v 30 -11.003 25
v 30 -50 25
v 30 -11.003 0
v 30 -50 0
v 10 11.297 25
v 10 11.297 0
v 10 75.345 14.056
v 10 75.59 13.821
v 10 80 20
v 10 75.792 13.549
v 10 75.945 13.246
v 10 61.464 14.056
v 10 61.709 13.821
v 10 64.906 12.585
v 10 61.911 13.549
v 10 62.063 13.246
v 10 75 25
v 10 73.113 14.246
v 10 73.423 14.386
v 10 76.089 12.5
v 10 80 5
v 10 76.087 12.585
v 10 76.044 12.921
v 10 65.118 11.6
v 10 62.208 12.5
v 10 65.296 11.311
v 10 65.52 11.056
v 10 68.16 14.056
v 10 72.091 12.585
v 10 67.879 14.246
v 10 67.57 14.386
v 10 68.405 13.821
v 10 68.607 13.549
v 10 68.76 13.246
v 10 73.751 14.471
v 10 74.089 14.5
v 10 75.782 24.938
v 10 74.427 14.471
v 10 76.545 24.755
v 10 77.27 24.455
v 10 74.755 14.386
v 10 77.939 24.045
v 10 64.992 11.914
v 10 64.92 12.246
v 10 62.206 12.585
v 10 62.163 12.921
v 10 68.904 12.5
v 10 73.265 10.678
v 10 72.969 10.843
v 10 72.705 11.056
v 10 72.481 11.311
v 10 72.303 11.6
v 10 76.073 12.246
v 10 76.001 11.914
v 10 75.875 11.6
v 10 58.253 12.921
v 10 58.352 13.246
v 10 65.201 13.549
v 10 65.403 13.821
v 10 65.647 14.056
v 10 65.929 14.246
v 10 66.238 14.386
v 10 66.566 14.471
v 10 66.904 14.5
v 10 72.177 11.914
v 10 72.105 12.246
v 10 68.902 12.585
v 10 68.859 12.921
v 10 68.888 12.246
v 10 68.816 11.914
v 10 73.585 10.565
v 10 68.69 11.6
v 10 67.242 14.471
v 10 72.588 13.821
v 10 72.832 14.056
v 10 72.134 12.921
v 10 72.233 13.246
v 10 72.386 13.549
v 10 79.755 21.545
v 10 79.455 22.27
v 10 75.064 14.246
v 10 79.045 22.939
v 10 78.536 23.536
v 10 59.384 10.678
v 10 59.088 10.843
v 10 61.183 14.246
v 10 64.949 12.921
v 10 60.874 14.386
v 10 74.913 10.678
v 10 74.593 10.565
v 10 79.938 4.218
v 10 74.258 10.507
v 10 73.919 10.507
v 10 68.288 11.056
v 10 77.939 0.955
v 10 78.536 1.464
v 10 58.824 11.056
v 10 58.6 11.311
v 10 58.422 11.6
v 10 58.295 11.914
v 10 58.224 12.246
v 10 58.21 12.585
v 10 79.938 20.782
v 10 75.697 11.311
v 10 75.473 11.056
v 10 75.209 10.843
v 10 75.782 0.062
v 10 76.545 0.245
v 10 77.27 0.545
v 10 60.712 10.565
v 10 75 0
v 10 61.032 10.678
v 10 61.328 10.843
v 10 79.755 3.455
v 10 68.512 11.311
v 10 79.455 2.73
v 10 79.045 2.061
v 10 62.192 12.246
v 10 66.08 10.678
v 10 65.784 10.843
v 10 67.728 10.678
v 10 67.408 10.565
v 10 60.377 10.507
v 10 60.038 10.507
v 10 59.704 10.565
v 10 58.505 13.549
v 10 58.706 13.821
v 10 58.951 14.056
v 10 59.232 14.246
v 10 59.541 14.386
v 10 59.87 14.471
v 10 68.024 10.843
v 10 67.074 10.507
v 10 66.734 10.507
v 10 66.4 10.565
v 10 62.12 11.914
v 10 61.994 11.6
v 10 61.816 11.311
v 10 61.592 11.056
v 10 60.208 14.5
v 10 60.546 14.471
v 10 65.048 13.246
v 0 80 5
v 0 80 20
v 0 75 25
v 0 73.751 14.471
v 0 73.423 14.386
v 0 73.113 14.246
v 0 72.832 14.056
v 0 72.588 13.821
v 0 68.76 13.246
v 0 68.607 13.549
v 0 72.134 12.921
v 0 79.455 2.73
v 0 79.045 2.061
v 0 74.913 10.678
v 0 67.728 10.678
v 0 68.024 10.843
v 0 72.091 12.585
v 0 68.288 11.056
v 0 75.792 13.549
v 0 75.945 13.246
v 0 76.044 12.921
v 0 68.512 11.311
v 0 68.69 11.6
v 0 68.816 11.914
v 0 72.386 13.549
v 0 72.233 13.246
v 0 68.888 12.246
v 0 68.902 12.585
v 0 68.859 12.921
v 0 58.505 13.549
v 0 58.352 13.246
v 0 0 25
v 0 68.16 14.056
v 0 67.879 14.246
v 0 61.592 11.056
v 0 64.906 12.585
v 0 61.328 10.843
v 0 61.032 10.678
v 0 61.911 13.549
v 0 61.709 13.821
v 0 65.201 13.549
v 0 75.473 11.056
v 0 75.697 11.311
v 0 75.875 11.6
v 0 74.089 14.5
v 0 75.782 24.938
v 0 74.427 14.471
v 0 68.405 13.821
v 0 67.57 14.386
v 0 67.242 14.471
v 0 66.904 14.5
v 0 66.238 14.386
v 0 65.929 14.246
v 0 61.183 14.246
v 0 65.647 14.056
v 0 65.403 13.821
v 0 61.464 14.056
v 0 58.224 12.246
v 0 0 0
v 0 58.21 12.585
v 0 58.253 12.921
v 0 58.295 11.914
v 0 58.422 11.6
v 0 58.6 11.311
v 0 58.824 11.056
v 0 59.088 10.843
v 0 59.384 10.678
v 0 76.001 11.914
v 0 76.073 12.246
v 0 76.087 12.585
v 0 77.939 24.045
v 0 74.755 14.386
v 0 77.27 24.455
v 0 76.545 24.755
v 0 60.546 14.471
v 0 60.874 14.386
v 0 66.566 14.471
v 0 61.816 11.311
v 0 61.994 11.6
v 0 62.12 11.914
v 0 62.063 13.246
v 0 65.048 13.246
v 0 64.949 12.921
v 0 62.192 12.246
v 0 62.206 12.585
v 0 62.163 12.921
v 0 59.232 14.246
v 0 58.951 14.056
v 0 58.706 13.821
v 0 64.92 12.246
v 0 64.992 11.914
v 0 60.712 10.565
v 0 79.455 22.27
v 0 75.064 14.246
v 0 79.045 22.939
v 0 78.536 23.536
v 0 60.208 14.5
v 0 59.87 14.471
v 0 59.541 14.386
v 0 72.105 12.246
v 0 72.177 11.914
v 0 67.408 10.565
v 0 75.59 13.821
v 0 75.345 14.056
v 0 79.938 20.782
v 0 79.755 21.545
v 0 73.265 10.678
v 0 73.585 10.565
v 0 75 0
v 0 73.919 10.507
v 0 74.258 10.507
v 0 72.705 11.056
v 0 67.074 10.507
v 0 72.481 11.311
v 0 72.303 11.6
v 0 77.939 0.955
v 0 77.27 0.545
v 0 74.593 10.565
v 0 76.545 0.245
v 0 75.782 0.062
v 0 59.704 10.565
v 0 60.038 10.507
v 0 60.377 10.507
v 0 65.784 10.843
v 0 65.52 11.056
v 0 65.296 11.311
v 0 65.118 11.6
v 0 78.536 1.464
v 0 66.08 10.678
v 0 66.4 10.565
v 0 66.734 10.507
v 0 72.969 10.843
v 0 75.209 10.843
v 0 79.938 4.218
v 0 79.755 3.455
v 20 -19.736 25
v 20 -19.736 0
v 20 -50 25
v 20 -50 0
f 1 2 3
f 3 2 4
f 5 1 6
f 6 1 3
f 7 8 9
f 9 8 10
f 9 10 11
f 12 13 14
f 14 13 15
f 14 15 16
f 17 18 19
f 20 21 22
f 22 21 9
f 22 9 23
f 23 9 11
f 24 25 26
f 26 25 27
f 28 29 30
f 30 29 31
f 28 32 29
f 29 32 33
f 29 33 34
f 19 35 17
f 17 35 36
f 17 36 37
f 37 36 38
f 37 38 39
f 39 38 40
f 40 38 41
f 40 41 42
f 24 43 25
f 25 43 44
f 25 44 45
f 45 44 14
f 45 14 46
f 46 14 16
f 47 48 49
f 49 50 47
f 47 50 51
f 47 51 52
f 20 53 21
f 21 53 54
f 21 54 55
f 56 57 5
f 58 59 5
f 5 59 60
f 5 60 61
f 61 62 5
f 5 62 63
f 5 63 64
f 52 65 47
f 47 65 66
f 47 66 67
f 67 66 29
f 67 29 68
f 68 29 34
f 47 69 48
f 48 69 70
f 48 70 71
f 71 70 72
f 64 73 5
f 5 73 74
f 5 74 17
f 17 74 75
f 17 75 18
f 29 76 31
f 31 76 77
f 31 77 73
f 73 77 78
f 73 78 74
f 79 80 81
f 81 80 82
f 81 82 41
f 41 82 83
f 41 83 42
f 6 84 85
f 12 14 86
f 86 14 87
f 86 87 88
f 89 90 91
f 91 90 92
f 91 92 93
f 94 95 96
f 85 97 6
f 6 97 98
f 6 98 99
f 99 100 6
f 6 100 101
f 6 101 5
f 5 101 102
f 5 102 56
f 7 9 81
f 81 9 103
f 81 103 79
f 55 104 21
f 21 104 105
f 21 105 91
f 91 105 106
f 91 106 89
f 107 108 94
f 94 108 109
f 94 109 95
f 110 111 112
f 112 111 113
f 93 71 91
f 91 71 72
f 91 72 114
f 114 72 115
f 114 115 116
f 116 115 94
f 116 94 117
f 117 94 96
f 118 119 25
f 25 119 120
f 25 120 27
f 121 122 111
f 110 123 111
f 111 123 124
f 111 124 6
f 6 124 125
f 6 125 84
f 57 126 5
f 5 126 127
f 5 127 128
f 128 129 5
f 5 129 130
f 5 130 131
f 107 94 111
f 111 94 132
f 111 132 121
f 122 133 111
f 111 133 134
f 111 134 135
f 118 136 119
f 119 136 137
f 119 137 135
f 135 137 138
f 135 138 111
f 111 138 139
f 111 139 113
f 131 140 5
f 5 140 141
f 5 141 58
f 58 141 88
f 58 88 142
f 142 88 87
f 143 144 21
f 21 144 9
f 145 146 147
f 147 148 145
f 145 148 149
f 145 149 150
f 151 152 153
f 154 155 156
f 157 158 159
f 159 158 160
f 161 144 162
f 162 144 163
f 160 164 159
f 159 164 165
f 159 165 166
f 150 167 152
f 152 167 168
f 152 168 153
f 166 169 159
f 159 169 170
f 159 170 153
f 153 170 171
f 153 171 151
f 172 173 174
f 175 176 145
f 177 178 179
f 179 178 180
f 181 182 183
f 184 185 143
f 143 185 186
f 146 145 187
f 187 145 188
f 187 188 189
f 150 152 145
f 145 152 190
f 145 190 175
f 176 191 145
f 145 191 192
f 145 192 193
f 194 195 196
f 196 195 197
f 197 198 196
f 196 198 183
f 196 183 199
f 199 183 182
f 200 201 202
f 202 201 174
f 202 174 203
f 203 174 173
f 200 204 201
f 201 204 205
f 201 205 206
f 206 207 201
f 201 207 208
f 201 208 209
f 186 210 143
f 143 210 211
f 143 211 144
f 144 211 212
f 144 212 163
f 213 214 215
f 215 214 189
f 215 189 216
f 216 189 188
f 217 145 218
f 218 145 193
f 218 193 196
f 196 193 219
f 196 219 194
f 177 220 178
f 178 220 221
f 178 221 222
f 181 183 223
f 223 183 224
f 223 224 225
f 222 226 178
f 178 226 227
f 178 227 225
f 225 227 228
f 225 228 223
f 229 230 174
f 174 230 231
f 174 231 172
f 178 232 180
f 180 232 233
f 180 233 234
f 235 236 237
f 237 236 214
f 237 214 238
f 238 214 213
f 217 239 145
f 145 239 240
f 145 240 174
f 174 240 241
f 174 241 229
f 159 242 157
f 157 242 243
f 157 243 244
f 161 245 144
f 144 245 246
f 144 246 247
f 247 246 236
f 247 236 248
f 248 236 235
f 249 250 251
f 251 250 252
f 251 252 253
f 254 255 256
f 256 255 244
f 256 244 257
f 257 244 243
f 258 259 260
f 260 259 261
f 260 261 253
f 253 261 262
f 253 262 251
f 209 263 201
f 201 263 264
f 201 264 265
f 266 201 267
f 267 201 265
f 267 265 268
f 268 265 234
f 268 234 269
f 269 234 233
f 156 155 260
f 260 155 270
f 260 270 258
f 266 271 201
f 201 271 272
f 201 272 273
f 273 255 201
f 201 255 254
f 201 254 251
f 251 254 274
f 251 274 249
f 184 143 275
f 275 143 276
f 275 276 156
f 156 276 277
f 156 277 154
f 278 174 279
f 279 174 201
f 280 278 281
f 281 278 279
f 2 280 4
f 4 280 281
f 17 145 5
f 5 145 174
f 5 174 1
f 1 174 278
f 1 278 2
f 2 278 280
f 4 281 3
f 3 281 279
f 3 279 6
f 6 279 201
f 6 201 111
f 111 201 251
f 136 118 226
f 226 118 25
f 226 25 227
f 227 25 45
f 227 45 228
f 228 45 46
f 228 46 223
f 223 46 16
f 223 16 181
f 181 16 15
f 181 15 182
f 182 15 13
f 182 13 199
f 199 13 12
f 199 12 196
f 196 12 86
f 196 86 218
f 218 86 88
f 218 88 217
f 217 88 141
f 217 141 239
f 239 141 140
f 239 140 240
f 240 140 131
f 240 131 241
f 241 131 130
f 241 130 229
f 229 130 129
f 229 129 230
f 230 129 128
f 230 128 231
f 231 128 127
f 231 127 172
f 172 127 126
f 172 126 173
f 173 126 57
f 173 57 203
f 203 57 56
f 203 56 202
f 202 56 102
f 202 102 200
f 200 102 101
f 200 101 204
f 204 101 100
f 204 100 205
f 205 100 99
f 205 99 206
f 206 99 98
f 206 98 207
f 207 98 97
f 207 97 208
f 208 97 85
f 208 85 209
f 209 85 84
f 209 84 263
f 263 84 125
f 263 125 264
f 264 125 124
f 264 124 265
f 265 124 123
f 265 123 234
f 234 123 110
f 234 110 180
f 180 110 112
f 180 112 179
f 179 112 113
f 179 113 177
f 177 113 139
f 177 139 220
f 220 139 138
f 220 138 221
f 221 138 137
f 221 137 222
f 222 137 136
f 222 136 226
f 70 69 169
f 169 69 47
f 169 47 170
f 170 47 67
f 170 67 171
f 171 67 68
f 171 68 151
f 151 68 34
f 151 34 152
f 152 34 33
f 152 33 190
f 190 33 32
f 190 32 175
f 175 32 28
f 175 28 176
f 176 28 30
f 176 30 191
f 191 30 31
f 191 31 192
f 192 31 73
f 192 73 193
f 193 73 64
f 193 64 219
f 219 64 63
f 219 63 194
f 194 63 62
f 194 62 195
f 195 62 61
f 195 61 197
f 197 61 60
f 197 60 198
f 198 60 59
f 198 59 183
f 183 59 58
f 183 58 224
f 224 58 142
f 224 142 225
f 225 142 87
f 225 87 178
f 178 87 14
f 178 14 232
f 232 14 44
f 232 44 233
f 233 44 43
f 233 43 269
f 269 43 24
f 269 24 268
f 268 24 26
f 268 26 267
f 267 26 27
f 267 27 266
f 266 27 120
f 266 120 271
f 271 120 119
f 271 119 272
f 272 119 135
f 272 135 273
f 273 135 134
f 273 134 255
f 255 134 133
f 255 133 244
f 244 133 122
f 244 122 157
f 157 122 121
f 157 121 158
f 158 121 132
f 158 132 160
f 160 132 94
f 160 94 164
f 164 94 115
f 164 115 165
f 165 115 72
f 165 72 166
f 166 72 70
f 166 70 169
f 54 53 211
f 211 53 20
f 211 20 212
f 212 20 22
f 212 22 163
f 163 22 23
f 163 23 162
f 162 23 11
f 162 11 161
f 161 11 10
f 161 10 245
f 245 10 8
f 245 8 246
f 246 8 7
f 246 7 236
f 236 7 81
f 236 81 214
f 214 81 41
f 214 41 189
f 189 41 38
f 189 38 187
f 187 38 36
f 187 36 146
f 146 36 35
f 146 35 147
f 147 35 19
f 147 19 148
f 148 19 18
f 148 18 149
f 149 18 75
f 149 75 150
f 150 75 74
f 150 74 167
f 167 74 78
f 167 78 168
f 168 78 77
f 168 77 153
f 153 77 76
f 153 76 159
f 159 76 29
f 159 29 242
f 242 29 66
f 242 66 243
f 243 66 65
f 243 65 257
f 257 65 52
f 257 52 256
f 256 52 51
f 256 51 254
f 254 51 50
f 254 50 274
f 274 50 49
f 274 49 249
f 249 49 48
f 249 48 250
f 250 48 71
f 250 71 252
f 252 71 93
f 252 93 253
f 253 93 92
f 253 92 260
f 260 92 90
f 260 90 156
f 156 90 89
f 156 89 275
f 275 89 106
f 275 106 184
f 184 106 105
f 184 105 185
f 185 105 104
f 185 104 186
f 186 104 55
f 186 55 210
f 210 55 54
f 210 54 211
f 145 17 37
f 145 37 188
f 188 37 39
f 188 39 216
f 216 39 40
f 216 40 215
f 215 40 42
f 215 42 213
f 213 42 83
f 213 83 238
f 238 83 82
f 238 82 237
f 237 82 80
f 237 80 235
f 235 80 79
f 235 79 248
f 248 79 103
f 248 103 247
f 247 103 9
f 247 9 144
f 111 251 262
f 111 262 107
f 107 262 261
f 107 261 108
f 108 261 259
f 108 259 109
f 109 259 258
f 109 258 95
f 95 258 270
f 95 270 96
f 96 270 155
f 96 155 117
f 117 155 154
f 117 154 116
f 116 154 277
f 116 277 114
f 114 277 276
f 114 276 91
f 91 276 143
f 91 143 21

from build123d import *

# Parameters (mm, degrees)
Y_KSEKLIK_EKSTR_ZYON1_DEPTH = 25
KES_EKSTR_ZYON1_DEPTH       = 25
RADYUS1_R                   = 5
RADYUS2_R                   = 5


with BuildPart() as part:
    # Çizim1 → Yükseklik-Ekstrüzyon1 (new body)
    with BuildSketch(Plane.XY):
        Polygon((30, -11.002799306), (30, -50), (20, -50), (20, -19.736164581), (0, 0), (0, 80), (10, 80), (10, 11.297306062), align=None)
    extrude(amount=Y_KSEKLIK_EKSTR_ZYON1_DEPTH)

    # Çizim2 → Kes-Ekstrüzyon1 (cut)
    with BuildSketch(Plane.ZY):
        with BuildLine():
            ThreePointArc((14.5, 74.088859677), (13.914213562, 75.50307324), (12.5, 76.088859677))
            Line((12.5, 76.088859677), (12.5, 72.088859677))
            ThreePointArc((12.5, 72.088859677), (13.914213562, 72.674646115), (14.5, 74.088859677))
        make_face()
        with BuildLine():
            Line((12.5, 72.088859677), (12.5, 76.088859677))
            ThreePointArc((12.5, 76.088859677), (10.5, 74.088859677), (12.5, 72.088859677))
        make_face()
        with BuildLine():
            ThreePointArc((14.5, 66.903895924), (13.914213562, 68.318109486), (12.5, 68.903895924))
            Line((12.5, 68.903895924), (12.5, 64.903895924))
            ThreePointArc((12.5, 64.903895924), (13.914213562, 65.489682361), (14.5, 66.903895924))
        make_face()
        with BuildLine():
            Line((12.5, 64.903895924), (12.5, 68.903895924))
            ThreePointArc((12.5, 68.903895924), (10.5, 66.903895924), (12.5, 64.903895924))
        make_face()
        with BuildLine():
            ThreePointArc((12.5, 62.207705215), (10.5, 60.207705215), (12.5, 58.207705215))
            Line((12.5, 58.207705215), (12.5, 62.207705215))
        make_face()
        with BuildLine():
            Line((12.5, 62.207705215), (12.5, 58.207705215))
            ThreePointArc((12.5, 58.207705215), (13.914213562, 58.793491652), (14.5, 60.207705215))
            ThreePointArc((14.5, 60.207705215), (13.914213562, 61.621918777), (12.5, 62.207705215))
        make_face()
    extrude(amount=-KES_EKSTR_ZYON1_DEPTH, mode=Mode.SUBTRACT)

    # Radyus1
    radyus1_edges = [part.edges().sort_by_distance(p)[0] for p in [
        (5, 80, 25),
    ]]
    fillet(radyus1_edges, radius=RADYUS1_R)

    # Radyus2
    radyus2_edges = [part.edges().sort_by_distance(p)[0] for p in [
        (5, 80, 0),
    ]]
    fillet(radyus2_edges, radius=RADYUS2_R)


solid = part.part
